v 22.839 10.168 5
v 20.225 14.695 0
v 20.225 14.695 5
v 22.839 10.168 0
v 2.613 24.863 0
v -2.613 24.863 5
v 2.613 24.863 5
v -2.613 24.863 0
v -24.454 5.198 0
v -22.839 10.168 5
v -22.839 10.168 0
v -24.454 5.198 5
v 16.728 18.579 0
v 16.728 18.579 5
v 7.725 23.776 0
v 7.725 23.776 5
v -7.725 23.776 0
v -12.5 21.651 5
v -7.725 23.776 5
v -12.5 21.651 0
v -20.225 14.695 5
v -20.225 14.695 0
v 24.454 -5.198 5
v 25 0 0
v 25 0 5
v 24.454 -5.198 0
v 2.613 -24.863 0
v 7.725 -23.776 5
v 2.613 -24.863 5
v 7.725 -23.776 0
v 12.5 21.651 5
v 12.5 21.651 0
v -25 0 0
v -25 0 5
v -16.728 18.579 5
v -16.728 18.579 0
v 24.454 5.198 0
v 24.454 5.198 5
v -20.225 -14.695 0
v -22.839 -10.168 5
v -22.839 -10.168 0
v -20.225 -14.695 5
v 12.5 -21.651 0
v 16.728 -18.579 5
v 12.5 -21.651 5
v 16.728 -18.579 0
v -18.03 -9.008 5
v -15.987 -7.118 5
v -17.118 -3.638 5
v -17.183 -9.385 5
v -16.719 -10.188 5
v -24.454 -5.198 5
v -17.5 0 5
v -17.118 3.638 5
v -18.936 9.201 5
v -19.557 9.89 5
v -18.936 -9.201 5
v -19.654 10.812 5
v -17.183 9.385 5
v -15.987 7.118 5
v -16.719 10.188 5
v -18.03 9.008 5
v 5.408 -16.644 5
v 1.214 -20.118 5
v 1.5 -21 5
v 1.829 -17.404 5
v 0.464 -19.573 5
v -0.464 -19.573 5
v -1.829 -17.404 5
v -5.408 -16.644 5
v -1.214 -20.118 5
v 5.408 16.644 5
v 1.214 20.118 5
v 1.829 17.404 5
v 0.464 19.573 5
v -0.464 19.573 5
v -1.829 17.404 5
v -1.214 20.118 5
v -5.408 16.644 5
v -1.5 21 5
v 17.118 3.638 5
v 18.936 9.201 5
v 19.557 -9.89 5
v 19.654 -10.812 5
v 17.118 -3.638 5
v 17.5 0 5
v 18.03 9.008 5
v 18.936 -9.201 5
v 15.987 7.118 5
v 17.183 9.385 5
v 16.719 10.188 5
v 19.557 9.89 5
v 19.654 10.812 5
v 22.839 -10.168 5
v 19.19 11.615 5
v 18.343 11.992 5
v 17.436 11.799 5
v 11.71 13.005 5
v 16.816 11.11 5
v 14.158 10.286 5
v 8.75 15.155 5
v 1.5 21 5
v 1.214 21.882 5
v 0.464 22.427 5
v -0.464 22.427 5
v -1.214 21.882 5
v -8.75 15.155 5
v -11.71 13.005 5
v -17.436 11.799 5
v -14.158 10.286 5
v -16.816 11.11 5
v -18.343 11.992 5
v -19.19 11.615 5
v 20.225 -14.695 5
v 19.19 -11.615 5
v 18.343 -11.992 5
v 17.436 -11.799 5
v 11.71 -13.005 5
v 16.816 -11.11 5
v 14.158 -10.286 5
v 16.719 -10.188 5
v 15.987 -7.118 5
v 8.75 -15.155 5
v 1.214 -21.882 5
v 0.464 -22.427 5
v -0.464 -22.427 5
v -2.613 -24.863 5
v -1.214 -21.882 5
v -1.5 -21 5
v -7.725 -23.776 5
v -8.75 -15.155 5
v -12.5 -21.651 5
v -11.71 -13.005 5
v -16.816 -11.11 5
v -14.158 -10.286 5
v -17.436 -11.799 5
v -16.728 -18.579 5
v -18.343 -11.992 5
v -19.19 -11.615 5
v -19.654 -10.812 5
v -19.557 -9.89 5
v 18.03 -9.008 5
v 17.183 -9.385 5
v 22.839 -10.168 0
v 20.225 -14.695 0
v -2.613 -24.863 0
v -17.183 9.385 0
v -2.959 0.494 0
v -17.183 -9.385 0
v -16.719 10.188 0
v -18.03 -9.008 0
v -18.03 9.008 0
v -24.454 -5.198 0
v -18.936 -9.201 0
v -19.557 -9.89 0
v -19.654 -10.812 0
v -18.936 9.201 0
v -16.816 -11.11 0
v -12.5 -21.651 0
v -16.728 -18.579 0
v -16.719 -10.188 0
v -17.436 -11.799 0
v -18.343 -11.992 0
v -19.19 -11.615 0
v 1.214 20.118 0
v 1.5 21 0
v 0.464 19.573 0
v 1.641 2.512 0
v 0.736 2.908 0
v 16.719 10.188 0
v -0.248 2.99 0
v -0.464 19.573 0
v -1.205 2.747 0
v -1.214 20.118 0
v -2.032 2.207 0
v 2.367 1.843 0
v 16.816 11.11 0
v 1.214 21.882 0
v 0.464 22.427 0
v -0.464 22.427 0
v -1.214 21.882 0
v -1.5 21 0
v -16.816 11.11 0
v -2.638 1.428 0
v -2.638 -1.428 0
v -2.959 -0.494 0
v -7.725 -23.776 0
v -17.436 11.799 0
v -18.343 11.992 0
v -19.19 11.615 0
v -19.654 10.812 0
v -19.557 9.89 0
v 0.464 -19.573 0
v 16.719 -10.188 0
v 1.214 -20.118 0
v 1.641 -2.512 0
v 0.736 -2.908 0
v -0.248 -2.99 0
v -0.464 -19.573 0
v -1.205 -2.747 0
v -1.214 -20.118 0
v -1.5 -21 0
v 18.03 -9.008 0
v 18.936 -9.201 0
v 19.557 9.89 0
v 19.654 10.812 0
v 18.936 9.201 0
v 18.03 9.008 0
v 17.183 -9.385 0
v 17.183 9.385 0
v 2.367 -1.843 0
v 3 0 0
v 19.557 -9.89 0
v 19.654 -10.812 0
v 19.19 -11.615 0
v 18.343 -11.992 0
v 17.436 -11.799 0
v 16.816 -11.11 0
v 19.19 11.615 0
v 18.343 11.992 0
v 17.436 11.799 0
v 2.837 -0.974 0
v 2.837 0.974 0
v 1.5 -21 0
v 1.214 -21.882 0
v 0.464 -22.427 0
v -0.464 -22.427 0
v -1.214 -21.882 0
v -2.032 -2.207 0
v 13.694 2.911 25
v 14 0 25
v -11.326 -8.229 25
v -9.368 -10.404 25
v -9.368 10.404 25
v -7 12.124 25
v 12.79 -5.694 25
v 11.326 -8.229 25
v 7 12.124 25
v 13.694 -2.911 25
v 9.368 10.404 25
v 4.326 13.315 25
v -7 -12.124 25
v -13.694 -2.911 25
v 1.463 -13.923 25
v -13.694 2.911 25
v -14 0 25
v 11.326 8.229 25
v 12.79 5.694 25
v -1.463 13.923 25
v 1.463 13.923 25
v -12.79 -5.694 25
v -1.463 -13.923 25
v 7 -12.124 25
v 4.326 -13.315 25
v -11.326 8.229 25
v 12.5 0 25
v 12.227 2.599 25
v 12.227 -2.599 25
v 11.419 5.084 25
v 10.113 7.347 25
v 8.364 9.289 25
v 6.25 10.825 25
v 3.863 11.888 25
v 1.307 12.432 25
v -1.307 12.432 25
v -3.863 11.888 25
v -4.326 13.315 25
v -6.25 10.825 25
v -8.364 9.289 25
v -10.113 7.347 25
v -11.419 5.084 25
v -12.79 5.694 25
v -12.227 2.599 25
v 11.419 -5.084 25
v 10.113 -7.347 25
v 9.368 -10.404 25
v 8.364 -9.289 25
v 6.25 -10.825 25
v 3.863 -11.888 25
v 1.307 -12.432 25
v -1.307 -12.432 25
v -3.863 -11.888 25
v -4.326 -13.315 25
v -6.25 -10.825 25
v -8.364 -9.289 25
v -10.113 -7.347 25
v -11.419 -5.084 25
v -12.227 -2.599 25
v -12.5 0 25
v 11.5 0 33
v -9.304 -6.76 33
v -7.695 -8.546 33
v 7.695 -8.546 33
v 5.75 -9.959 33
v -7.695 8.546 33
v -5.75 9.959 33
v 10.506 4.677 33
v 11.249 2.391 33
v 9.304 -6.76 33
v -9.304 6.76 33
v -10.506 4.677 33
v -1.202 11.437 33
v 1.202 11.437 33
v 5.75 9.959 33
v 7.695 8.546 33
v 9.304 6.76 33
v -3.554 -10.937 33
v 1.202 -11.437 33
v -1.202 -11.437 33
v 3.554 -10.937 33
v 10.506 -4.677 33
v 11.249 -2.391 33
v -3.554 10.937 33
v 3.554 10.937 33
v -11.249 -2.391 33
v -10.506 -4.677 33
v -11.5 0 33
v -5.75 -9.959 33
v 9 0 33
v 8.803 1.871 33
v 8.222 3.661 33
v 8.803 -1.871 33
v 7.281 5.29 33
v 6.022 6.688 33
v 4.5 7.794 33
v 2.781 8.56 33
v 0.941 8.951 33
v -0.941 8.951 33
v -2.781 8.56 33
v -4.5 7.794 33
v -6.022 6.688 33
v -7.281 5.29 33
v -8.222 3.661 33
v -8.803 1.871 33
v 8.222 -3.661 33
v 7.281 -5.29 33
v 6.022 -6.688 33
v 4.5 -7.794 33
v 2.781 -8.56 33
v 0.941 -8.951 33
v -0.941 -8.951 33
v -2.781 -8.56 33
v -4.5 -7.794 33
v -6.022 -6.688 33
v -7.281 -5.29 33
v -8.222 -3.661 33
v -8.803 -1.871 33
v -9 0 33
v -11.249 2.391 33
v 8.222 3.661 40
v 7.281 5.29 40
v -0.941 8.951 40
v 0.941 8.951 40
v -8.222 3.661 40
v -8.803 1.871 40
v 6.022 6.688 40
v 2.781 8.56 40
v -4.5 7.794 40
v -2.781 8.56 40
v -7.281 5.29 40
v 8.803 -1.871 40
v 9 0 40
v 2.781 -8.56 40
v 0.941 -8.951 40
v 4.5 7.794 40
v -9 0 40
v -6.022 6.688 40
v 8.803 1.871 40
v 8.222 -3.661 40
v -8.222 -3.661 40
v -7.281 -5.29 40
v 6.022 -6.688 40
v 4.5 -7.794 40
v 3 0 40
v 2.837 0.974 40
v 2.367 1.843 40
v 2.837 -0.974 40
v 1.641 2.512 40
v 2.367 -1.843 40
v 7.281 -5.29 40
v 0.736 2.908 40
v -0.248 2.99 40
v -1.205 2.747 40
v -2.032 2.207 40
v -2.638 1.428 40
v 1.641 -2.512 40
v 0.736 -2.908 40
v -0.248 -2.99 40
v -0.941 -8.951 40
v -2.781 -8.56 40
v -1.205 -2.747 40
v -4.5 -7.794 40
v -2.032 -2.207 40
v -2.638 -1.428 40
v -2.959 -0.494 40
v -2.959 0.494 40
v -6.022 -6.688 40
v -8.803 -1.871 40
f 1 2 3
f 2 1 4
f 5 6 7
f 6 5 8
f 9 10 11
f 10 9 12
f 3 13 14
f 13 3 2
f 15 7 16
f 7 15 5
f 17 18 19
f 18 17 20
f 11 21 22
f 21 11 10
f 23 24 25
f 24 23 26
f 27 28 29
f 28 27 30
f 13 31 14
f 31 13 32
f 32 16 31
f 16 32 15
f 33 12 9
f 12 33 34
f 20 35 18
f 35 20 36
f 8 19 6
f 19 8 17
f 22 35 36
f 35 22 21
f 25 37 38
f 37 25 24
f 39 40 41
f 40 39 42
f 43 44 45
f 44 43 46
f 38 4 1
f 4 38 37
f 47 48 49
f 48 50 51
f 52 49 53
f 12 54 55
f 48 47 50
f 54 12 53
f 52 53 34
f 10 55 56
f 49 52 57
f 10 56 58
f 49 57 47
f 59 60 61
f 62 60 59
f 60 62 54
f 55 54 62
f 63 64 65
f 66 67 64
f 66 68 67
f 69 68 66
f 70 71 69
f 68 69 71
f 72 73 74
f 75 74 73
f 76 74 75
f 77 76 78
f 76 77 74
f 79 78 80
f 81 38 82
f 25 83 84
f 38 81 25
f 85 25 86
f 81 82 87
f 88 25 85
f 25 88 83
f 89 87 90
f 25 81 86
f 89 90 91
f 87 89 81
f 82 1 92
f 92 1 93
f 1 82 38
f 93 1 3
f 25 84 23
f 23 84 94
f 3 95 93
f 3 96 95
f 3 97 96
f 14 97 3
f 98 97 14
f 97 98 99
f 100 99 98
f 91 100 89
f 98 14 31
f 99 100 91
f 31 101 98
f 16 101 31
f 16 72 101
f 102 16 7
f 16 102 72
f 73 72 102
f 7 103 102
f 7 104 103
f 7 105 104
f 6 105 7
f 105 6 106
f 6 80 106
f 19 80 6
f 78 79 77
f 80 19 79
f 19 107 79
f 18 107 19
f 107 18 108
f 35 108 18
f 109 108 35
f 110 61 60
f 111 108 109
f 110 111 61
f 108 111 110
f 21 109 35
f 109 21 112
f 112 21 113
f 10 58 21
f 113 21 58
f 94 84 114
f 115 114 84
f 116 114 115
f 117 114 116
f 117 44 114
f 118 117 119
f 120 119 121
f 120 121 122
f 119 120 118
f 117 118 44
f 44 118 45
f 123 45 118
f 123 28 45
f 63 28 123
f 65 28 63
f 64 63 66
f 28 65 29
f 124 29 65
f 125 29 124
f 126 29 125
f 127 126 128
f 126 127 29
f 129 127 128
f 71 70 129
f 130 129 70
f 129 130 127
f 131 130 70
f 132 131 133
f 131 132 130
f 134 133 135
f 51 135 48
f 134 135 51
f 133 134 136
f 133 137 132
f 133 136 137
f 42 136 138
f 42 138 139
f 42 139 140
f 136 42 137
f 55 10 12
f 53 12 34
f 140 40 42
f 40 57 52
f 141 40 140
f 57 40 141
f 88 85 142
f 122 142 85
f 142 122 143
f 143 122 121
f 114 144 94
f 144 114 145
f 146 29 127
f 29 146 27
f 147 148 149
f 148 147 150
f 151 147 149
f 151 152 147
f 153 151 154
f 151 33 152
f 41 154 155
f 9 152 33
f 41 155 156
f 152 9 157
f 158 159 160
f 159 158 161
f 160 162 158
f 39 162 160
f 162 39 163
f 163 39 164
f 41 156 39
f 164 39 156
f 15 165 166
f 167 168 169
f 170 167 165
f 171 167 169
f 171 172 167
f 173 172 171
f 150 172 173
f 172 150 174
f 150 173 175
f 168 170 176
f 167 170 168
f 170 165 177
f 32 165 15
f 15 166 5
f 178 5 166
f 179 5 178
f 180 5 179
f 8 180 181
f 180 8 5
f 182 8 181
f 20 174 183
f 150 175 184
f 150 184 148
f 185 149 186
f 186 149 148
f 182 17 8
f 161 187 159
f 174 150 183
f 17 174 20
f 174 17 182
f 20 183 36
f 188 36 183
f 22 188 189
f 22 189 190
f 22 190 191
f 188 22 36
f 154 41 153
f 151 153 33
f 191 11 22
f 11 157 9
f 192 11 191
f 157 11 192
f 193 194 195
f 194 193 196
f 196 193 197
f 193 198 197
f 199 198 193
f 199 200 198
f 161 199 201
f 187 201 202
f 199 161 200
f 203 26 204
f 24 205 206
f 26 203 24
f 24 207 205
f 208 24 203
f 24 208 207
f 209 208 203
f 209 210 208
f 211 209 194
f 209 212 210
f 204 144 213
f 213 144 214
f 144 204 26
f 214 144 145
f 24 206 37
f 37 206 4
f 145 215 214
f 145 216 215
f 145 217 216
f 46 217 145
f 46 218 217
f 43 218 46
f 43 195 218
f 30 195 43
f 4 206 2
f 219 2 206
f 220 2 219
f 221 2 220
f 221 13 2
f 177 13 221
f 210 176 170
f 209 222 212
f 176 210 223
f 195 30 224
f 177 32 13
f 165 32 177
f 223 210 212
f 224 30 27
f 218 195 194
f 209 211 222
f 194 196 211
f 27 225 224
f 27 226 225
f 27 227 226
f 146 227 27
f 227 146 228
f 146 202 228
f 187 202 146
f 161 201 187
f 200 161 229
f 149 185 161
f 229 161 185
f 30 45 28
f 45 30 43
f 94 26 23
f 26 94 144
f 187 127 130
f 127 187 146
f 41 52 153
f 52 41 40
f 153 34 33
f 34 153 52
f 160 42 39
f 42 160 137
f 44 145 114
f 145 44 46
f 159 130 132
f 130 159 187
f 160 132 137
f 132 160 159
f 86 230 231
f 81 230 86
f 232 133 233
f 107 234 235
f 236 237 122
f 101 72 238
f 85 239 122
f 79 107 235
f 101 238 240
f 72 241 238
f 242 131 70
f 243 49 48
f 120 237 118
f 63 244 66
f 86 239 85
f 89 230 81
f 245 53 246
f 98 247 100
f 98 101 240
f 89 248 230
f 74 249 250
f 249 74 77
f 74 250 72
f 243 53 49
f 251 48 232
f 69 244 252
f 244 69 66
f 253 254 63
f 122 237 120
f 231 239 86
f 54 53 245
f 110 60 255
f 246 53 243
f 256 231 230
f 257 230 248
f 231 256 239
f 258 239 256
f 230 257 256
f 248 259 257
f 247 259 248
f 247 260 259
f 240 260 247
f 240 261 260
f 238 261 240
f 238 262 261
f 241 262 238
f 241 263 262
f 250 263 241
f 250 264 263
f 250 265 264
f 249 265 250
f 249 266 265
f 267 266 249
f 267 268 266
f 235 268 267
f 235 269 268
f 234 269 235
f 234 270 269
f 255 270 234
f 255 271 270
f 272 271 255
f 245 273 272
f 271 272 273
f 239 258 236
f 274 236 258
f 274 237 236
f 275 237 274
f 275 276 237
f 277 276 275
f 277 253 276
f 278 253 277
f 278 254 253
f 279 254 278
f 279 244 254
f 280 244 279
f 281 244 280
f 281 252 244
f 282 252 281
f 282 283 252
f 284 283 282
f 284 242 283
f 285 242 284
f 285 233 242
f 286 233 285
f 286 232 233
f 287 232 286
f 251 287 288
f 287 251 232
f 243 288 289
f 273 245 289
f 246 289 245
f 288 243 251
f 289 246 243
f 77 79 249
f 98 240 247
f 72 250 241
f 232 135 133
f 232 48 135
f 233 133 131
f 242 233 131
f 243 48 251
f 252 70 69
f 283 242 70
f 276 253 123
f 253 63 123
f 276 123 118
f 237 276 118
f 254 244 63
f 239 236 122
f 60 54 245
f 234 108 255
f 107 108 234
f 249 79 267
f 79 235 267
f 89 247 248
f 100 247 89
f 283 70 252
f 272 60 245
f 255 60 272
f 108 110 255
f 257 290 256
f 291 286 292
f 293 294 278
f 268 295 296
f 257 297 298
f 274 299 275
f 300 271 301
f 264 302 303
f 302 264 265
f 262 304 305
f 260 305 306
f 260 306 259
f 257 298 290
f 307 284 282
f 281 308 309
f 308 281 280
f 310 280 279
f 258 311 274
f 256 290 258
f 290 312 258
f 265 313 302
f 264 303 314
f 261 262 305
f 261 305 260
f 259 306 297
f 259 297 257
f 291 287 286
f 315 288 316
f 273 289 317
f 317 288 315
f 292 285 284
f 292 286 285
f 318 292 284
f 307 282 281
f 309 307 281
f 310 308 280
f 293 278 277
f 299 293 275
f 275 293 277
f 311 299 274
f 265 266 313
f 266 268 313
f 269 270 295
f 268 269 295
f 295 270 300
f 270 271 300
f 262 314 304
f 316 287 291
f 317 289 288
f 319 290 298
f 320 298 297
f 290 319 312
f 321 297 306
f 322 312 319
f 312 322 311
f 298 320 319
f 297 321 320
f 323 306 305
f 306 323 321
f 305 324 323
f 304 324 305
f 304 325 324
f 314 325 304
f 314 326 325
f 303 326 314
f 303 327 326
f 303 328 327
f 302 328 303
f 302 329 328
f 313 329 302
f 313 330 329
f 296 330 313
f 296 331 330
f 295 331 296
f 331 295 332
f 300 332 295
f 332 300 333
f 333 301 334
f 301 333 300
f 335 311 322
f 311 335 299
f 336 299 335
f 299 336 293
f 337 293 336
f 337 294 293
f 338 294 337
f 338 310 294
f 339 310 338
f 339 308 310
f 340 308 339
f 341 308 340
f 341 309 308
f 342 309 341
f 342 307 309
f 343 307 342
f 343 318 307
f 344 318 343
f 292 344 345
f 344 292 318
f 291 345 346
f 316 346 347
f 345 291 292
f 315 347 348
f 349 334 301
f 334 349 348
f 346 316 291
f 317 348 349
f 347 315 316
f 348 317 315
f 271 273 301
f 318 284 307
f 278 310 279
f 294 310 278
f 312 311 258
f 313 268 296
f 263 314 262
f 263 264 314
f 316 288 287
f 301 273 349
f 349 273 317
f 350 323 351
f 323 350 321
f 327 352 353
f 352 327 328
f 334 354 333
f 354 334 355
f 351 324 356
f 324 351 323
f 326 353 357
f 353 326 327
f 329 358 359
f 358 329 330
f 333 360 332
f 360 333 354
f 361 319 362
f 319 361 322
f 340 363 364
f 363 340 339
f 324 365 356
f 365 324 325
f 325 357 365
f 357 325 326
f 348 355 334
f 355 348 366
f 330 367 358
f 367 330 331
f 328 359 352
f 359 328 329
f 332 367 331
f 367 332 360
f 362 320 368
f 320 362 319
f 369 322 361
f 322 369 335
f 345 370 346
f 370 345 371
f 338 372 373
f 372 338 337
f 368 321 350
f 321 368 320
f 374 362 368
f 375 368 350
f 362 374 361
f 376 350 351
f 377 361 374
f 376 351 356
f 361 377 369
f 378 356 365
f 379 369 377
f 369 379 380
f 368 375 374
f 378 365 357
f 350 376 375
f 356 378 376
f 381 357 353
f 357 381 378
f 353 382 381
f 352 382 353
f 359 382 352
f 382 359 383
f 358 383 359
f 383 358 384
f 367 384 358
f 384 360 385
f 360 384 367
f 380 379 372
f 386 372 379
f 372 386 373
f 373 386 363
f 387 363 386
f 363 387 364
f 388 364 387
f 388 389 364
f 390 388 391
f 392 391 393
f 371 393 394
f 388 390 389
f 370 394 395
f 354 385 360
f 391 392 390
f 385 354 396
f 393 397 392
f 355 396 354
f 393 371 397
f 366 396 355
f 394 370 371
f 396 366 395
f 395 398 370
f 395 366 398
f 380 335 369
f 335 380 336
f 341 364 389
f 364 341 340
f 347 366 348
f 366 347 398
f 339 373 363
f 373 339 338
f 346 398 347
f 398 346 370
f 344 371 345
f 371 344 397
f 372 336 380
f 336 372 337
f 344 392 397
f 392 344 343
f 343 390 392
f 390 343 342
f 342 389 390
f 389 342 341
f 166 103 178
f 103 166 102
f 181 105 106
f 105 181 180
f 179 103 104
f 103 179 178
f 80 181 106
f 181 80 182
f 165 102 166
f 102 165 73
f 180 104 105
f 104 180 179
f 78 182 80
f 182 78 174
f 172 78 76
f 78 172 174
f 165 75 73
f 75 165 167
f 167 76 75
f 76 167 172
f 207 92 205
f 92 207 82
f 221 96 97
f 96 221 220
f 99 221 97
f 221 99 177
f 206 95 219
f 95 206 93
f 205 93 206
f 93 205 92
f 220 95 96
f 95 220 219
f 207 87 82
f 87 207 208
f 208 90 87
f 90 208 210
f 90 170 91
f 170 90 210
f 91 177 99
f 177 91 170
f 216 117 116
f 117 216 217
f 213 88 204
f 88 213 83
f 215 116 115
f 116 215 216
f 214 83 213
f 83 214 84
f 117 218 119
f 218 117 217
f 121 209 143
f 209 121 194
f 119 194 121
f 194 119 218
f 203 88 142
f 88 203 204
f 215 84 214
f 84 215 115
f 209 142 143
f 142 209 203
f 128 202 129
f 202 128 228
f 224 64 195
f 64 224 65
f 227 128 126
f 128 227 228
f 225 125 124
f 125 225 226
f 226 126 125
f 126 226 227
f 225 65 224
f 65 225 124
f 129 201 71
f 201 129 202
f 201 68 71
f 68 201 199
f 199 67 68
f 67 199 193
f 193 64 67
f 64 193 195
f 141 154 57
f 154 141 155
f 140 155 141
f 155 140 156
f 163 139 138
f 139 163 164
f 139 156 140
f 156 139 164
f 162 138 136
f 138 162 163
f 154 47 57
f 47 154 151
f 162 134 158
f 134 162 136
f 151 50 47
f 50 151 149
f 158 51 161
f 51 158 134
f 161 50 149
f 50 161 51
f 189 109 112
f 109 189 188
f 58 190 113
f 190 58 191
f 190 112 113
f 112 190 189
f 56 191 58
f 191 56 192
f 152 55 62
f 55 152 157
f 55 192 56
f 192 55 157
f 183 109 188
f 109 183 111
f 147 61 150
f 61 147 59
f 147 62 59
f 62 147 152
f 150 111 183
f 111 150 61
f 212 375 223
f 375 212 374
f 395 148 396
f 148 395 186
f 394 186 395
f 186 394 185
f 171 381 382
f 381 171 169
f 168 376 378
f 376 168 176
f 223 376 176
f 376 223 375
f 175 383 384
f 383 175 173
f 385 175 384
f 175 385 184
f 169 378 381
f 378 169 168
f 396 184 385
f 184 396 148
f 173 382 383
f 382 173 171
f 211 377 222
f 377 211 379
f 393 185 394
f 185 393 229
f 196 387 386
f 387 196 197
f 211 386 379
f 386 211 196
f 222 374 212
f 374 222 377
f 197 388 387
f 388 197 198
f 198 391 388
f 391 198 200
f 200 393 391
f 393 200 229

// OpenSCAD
$fs = 1;

// Leg hose connector for a Ghostbusters uniform
// https://github.com/bendetat/ghostbusters-suit-leg-hose-connector

hoseDiameter = 6;
screwDiameter = 3;

difference() {
    solidConnector();
    translate([0,0,-1])
    cylinder(
        d=hoseDiameter,
        h=50
    );
    Radial_Array(
        a=60,
        n=6,
        r=21
    ) {
        translate([0,0,-1])
        cylinder(
            d=screwDiameter,
            h=6
        );
    }
}

module solidConnector() {
    union() {
        cylinder(
            d=50,
            h=5
        );
        translate([0,0,5])
        cylinder(
            d1=35,
            d2=28,
            h=20
        );
        translate([0,0,25])
        cylinder(
            d1=25,
            d2=23,
            h=8
        );
        translate([0,0,33])
        cylinder(
            d=18,
            h=7
        );
    }
}

// http://forum.openscad.org/What-is-happening-here-tp5193p5205.html
//Radial_Array(a,n,r){child object}
// produces a clockwise radial array of child objects rotated around the local z axis   
// a= interval angle 
// n= number of objects 
// r= radius distance 
//
module Radial_Array(a,n,r)
{
    for (k=[0:n-1])
    {
        rotate([0,0,-(a*k)])
        translate([0,r,0])
        child();
    }
}
